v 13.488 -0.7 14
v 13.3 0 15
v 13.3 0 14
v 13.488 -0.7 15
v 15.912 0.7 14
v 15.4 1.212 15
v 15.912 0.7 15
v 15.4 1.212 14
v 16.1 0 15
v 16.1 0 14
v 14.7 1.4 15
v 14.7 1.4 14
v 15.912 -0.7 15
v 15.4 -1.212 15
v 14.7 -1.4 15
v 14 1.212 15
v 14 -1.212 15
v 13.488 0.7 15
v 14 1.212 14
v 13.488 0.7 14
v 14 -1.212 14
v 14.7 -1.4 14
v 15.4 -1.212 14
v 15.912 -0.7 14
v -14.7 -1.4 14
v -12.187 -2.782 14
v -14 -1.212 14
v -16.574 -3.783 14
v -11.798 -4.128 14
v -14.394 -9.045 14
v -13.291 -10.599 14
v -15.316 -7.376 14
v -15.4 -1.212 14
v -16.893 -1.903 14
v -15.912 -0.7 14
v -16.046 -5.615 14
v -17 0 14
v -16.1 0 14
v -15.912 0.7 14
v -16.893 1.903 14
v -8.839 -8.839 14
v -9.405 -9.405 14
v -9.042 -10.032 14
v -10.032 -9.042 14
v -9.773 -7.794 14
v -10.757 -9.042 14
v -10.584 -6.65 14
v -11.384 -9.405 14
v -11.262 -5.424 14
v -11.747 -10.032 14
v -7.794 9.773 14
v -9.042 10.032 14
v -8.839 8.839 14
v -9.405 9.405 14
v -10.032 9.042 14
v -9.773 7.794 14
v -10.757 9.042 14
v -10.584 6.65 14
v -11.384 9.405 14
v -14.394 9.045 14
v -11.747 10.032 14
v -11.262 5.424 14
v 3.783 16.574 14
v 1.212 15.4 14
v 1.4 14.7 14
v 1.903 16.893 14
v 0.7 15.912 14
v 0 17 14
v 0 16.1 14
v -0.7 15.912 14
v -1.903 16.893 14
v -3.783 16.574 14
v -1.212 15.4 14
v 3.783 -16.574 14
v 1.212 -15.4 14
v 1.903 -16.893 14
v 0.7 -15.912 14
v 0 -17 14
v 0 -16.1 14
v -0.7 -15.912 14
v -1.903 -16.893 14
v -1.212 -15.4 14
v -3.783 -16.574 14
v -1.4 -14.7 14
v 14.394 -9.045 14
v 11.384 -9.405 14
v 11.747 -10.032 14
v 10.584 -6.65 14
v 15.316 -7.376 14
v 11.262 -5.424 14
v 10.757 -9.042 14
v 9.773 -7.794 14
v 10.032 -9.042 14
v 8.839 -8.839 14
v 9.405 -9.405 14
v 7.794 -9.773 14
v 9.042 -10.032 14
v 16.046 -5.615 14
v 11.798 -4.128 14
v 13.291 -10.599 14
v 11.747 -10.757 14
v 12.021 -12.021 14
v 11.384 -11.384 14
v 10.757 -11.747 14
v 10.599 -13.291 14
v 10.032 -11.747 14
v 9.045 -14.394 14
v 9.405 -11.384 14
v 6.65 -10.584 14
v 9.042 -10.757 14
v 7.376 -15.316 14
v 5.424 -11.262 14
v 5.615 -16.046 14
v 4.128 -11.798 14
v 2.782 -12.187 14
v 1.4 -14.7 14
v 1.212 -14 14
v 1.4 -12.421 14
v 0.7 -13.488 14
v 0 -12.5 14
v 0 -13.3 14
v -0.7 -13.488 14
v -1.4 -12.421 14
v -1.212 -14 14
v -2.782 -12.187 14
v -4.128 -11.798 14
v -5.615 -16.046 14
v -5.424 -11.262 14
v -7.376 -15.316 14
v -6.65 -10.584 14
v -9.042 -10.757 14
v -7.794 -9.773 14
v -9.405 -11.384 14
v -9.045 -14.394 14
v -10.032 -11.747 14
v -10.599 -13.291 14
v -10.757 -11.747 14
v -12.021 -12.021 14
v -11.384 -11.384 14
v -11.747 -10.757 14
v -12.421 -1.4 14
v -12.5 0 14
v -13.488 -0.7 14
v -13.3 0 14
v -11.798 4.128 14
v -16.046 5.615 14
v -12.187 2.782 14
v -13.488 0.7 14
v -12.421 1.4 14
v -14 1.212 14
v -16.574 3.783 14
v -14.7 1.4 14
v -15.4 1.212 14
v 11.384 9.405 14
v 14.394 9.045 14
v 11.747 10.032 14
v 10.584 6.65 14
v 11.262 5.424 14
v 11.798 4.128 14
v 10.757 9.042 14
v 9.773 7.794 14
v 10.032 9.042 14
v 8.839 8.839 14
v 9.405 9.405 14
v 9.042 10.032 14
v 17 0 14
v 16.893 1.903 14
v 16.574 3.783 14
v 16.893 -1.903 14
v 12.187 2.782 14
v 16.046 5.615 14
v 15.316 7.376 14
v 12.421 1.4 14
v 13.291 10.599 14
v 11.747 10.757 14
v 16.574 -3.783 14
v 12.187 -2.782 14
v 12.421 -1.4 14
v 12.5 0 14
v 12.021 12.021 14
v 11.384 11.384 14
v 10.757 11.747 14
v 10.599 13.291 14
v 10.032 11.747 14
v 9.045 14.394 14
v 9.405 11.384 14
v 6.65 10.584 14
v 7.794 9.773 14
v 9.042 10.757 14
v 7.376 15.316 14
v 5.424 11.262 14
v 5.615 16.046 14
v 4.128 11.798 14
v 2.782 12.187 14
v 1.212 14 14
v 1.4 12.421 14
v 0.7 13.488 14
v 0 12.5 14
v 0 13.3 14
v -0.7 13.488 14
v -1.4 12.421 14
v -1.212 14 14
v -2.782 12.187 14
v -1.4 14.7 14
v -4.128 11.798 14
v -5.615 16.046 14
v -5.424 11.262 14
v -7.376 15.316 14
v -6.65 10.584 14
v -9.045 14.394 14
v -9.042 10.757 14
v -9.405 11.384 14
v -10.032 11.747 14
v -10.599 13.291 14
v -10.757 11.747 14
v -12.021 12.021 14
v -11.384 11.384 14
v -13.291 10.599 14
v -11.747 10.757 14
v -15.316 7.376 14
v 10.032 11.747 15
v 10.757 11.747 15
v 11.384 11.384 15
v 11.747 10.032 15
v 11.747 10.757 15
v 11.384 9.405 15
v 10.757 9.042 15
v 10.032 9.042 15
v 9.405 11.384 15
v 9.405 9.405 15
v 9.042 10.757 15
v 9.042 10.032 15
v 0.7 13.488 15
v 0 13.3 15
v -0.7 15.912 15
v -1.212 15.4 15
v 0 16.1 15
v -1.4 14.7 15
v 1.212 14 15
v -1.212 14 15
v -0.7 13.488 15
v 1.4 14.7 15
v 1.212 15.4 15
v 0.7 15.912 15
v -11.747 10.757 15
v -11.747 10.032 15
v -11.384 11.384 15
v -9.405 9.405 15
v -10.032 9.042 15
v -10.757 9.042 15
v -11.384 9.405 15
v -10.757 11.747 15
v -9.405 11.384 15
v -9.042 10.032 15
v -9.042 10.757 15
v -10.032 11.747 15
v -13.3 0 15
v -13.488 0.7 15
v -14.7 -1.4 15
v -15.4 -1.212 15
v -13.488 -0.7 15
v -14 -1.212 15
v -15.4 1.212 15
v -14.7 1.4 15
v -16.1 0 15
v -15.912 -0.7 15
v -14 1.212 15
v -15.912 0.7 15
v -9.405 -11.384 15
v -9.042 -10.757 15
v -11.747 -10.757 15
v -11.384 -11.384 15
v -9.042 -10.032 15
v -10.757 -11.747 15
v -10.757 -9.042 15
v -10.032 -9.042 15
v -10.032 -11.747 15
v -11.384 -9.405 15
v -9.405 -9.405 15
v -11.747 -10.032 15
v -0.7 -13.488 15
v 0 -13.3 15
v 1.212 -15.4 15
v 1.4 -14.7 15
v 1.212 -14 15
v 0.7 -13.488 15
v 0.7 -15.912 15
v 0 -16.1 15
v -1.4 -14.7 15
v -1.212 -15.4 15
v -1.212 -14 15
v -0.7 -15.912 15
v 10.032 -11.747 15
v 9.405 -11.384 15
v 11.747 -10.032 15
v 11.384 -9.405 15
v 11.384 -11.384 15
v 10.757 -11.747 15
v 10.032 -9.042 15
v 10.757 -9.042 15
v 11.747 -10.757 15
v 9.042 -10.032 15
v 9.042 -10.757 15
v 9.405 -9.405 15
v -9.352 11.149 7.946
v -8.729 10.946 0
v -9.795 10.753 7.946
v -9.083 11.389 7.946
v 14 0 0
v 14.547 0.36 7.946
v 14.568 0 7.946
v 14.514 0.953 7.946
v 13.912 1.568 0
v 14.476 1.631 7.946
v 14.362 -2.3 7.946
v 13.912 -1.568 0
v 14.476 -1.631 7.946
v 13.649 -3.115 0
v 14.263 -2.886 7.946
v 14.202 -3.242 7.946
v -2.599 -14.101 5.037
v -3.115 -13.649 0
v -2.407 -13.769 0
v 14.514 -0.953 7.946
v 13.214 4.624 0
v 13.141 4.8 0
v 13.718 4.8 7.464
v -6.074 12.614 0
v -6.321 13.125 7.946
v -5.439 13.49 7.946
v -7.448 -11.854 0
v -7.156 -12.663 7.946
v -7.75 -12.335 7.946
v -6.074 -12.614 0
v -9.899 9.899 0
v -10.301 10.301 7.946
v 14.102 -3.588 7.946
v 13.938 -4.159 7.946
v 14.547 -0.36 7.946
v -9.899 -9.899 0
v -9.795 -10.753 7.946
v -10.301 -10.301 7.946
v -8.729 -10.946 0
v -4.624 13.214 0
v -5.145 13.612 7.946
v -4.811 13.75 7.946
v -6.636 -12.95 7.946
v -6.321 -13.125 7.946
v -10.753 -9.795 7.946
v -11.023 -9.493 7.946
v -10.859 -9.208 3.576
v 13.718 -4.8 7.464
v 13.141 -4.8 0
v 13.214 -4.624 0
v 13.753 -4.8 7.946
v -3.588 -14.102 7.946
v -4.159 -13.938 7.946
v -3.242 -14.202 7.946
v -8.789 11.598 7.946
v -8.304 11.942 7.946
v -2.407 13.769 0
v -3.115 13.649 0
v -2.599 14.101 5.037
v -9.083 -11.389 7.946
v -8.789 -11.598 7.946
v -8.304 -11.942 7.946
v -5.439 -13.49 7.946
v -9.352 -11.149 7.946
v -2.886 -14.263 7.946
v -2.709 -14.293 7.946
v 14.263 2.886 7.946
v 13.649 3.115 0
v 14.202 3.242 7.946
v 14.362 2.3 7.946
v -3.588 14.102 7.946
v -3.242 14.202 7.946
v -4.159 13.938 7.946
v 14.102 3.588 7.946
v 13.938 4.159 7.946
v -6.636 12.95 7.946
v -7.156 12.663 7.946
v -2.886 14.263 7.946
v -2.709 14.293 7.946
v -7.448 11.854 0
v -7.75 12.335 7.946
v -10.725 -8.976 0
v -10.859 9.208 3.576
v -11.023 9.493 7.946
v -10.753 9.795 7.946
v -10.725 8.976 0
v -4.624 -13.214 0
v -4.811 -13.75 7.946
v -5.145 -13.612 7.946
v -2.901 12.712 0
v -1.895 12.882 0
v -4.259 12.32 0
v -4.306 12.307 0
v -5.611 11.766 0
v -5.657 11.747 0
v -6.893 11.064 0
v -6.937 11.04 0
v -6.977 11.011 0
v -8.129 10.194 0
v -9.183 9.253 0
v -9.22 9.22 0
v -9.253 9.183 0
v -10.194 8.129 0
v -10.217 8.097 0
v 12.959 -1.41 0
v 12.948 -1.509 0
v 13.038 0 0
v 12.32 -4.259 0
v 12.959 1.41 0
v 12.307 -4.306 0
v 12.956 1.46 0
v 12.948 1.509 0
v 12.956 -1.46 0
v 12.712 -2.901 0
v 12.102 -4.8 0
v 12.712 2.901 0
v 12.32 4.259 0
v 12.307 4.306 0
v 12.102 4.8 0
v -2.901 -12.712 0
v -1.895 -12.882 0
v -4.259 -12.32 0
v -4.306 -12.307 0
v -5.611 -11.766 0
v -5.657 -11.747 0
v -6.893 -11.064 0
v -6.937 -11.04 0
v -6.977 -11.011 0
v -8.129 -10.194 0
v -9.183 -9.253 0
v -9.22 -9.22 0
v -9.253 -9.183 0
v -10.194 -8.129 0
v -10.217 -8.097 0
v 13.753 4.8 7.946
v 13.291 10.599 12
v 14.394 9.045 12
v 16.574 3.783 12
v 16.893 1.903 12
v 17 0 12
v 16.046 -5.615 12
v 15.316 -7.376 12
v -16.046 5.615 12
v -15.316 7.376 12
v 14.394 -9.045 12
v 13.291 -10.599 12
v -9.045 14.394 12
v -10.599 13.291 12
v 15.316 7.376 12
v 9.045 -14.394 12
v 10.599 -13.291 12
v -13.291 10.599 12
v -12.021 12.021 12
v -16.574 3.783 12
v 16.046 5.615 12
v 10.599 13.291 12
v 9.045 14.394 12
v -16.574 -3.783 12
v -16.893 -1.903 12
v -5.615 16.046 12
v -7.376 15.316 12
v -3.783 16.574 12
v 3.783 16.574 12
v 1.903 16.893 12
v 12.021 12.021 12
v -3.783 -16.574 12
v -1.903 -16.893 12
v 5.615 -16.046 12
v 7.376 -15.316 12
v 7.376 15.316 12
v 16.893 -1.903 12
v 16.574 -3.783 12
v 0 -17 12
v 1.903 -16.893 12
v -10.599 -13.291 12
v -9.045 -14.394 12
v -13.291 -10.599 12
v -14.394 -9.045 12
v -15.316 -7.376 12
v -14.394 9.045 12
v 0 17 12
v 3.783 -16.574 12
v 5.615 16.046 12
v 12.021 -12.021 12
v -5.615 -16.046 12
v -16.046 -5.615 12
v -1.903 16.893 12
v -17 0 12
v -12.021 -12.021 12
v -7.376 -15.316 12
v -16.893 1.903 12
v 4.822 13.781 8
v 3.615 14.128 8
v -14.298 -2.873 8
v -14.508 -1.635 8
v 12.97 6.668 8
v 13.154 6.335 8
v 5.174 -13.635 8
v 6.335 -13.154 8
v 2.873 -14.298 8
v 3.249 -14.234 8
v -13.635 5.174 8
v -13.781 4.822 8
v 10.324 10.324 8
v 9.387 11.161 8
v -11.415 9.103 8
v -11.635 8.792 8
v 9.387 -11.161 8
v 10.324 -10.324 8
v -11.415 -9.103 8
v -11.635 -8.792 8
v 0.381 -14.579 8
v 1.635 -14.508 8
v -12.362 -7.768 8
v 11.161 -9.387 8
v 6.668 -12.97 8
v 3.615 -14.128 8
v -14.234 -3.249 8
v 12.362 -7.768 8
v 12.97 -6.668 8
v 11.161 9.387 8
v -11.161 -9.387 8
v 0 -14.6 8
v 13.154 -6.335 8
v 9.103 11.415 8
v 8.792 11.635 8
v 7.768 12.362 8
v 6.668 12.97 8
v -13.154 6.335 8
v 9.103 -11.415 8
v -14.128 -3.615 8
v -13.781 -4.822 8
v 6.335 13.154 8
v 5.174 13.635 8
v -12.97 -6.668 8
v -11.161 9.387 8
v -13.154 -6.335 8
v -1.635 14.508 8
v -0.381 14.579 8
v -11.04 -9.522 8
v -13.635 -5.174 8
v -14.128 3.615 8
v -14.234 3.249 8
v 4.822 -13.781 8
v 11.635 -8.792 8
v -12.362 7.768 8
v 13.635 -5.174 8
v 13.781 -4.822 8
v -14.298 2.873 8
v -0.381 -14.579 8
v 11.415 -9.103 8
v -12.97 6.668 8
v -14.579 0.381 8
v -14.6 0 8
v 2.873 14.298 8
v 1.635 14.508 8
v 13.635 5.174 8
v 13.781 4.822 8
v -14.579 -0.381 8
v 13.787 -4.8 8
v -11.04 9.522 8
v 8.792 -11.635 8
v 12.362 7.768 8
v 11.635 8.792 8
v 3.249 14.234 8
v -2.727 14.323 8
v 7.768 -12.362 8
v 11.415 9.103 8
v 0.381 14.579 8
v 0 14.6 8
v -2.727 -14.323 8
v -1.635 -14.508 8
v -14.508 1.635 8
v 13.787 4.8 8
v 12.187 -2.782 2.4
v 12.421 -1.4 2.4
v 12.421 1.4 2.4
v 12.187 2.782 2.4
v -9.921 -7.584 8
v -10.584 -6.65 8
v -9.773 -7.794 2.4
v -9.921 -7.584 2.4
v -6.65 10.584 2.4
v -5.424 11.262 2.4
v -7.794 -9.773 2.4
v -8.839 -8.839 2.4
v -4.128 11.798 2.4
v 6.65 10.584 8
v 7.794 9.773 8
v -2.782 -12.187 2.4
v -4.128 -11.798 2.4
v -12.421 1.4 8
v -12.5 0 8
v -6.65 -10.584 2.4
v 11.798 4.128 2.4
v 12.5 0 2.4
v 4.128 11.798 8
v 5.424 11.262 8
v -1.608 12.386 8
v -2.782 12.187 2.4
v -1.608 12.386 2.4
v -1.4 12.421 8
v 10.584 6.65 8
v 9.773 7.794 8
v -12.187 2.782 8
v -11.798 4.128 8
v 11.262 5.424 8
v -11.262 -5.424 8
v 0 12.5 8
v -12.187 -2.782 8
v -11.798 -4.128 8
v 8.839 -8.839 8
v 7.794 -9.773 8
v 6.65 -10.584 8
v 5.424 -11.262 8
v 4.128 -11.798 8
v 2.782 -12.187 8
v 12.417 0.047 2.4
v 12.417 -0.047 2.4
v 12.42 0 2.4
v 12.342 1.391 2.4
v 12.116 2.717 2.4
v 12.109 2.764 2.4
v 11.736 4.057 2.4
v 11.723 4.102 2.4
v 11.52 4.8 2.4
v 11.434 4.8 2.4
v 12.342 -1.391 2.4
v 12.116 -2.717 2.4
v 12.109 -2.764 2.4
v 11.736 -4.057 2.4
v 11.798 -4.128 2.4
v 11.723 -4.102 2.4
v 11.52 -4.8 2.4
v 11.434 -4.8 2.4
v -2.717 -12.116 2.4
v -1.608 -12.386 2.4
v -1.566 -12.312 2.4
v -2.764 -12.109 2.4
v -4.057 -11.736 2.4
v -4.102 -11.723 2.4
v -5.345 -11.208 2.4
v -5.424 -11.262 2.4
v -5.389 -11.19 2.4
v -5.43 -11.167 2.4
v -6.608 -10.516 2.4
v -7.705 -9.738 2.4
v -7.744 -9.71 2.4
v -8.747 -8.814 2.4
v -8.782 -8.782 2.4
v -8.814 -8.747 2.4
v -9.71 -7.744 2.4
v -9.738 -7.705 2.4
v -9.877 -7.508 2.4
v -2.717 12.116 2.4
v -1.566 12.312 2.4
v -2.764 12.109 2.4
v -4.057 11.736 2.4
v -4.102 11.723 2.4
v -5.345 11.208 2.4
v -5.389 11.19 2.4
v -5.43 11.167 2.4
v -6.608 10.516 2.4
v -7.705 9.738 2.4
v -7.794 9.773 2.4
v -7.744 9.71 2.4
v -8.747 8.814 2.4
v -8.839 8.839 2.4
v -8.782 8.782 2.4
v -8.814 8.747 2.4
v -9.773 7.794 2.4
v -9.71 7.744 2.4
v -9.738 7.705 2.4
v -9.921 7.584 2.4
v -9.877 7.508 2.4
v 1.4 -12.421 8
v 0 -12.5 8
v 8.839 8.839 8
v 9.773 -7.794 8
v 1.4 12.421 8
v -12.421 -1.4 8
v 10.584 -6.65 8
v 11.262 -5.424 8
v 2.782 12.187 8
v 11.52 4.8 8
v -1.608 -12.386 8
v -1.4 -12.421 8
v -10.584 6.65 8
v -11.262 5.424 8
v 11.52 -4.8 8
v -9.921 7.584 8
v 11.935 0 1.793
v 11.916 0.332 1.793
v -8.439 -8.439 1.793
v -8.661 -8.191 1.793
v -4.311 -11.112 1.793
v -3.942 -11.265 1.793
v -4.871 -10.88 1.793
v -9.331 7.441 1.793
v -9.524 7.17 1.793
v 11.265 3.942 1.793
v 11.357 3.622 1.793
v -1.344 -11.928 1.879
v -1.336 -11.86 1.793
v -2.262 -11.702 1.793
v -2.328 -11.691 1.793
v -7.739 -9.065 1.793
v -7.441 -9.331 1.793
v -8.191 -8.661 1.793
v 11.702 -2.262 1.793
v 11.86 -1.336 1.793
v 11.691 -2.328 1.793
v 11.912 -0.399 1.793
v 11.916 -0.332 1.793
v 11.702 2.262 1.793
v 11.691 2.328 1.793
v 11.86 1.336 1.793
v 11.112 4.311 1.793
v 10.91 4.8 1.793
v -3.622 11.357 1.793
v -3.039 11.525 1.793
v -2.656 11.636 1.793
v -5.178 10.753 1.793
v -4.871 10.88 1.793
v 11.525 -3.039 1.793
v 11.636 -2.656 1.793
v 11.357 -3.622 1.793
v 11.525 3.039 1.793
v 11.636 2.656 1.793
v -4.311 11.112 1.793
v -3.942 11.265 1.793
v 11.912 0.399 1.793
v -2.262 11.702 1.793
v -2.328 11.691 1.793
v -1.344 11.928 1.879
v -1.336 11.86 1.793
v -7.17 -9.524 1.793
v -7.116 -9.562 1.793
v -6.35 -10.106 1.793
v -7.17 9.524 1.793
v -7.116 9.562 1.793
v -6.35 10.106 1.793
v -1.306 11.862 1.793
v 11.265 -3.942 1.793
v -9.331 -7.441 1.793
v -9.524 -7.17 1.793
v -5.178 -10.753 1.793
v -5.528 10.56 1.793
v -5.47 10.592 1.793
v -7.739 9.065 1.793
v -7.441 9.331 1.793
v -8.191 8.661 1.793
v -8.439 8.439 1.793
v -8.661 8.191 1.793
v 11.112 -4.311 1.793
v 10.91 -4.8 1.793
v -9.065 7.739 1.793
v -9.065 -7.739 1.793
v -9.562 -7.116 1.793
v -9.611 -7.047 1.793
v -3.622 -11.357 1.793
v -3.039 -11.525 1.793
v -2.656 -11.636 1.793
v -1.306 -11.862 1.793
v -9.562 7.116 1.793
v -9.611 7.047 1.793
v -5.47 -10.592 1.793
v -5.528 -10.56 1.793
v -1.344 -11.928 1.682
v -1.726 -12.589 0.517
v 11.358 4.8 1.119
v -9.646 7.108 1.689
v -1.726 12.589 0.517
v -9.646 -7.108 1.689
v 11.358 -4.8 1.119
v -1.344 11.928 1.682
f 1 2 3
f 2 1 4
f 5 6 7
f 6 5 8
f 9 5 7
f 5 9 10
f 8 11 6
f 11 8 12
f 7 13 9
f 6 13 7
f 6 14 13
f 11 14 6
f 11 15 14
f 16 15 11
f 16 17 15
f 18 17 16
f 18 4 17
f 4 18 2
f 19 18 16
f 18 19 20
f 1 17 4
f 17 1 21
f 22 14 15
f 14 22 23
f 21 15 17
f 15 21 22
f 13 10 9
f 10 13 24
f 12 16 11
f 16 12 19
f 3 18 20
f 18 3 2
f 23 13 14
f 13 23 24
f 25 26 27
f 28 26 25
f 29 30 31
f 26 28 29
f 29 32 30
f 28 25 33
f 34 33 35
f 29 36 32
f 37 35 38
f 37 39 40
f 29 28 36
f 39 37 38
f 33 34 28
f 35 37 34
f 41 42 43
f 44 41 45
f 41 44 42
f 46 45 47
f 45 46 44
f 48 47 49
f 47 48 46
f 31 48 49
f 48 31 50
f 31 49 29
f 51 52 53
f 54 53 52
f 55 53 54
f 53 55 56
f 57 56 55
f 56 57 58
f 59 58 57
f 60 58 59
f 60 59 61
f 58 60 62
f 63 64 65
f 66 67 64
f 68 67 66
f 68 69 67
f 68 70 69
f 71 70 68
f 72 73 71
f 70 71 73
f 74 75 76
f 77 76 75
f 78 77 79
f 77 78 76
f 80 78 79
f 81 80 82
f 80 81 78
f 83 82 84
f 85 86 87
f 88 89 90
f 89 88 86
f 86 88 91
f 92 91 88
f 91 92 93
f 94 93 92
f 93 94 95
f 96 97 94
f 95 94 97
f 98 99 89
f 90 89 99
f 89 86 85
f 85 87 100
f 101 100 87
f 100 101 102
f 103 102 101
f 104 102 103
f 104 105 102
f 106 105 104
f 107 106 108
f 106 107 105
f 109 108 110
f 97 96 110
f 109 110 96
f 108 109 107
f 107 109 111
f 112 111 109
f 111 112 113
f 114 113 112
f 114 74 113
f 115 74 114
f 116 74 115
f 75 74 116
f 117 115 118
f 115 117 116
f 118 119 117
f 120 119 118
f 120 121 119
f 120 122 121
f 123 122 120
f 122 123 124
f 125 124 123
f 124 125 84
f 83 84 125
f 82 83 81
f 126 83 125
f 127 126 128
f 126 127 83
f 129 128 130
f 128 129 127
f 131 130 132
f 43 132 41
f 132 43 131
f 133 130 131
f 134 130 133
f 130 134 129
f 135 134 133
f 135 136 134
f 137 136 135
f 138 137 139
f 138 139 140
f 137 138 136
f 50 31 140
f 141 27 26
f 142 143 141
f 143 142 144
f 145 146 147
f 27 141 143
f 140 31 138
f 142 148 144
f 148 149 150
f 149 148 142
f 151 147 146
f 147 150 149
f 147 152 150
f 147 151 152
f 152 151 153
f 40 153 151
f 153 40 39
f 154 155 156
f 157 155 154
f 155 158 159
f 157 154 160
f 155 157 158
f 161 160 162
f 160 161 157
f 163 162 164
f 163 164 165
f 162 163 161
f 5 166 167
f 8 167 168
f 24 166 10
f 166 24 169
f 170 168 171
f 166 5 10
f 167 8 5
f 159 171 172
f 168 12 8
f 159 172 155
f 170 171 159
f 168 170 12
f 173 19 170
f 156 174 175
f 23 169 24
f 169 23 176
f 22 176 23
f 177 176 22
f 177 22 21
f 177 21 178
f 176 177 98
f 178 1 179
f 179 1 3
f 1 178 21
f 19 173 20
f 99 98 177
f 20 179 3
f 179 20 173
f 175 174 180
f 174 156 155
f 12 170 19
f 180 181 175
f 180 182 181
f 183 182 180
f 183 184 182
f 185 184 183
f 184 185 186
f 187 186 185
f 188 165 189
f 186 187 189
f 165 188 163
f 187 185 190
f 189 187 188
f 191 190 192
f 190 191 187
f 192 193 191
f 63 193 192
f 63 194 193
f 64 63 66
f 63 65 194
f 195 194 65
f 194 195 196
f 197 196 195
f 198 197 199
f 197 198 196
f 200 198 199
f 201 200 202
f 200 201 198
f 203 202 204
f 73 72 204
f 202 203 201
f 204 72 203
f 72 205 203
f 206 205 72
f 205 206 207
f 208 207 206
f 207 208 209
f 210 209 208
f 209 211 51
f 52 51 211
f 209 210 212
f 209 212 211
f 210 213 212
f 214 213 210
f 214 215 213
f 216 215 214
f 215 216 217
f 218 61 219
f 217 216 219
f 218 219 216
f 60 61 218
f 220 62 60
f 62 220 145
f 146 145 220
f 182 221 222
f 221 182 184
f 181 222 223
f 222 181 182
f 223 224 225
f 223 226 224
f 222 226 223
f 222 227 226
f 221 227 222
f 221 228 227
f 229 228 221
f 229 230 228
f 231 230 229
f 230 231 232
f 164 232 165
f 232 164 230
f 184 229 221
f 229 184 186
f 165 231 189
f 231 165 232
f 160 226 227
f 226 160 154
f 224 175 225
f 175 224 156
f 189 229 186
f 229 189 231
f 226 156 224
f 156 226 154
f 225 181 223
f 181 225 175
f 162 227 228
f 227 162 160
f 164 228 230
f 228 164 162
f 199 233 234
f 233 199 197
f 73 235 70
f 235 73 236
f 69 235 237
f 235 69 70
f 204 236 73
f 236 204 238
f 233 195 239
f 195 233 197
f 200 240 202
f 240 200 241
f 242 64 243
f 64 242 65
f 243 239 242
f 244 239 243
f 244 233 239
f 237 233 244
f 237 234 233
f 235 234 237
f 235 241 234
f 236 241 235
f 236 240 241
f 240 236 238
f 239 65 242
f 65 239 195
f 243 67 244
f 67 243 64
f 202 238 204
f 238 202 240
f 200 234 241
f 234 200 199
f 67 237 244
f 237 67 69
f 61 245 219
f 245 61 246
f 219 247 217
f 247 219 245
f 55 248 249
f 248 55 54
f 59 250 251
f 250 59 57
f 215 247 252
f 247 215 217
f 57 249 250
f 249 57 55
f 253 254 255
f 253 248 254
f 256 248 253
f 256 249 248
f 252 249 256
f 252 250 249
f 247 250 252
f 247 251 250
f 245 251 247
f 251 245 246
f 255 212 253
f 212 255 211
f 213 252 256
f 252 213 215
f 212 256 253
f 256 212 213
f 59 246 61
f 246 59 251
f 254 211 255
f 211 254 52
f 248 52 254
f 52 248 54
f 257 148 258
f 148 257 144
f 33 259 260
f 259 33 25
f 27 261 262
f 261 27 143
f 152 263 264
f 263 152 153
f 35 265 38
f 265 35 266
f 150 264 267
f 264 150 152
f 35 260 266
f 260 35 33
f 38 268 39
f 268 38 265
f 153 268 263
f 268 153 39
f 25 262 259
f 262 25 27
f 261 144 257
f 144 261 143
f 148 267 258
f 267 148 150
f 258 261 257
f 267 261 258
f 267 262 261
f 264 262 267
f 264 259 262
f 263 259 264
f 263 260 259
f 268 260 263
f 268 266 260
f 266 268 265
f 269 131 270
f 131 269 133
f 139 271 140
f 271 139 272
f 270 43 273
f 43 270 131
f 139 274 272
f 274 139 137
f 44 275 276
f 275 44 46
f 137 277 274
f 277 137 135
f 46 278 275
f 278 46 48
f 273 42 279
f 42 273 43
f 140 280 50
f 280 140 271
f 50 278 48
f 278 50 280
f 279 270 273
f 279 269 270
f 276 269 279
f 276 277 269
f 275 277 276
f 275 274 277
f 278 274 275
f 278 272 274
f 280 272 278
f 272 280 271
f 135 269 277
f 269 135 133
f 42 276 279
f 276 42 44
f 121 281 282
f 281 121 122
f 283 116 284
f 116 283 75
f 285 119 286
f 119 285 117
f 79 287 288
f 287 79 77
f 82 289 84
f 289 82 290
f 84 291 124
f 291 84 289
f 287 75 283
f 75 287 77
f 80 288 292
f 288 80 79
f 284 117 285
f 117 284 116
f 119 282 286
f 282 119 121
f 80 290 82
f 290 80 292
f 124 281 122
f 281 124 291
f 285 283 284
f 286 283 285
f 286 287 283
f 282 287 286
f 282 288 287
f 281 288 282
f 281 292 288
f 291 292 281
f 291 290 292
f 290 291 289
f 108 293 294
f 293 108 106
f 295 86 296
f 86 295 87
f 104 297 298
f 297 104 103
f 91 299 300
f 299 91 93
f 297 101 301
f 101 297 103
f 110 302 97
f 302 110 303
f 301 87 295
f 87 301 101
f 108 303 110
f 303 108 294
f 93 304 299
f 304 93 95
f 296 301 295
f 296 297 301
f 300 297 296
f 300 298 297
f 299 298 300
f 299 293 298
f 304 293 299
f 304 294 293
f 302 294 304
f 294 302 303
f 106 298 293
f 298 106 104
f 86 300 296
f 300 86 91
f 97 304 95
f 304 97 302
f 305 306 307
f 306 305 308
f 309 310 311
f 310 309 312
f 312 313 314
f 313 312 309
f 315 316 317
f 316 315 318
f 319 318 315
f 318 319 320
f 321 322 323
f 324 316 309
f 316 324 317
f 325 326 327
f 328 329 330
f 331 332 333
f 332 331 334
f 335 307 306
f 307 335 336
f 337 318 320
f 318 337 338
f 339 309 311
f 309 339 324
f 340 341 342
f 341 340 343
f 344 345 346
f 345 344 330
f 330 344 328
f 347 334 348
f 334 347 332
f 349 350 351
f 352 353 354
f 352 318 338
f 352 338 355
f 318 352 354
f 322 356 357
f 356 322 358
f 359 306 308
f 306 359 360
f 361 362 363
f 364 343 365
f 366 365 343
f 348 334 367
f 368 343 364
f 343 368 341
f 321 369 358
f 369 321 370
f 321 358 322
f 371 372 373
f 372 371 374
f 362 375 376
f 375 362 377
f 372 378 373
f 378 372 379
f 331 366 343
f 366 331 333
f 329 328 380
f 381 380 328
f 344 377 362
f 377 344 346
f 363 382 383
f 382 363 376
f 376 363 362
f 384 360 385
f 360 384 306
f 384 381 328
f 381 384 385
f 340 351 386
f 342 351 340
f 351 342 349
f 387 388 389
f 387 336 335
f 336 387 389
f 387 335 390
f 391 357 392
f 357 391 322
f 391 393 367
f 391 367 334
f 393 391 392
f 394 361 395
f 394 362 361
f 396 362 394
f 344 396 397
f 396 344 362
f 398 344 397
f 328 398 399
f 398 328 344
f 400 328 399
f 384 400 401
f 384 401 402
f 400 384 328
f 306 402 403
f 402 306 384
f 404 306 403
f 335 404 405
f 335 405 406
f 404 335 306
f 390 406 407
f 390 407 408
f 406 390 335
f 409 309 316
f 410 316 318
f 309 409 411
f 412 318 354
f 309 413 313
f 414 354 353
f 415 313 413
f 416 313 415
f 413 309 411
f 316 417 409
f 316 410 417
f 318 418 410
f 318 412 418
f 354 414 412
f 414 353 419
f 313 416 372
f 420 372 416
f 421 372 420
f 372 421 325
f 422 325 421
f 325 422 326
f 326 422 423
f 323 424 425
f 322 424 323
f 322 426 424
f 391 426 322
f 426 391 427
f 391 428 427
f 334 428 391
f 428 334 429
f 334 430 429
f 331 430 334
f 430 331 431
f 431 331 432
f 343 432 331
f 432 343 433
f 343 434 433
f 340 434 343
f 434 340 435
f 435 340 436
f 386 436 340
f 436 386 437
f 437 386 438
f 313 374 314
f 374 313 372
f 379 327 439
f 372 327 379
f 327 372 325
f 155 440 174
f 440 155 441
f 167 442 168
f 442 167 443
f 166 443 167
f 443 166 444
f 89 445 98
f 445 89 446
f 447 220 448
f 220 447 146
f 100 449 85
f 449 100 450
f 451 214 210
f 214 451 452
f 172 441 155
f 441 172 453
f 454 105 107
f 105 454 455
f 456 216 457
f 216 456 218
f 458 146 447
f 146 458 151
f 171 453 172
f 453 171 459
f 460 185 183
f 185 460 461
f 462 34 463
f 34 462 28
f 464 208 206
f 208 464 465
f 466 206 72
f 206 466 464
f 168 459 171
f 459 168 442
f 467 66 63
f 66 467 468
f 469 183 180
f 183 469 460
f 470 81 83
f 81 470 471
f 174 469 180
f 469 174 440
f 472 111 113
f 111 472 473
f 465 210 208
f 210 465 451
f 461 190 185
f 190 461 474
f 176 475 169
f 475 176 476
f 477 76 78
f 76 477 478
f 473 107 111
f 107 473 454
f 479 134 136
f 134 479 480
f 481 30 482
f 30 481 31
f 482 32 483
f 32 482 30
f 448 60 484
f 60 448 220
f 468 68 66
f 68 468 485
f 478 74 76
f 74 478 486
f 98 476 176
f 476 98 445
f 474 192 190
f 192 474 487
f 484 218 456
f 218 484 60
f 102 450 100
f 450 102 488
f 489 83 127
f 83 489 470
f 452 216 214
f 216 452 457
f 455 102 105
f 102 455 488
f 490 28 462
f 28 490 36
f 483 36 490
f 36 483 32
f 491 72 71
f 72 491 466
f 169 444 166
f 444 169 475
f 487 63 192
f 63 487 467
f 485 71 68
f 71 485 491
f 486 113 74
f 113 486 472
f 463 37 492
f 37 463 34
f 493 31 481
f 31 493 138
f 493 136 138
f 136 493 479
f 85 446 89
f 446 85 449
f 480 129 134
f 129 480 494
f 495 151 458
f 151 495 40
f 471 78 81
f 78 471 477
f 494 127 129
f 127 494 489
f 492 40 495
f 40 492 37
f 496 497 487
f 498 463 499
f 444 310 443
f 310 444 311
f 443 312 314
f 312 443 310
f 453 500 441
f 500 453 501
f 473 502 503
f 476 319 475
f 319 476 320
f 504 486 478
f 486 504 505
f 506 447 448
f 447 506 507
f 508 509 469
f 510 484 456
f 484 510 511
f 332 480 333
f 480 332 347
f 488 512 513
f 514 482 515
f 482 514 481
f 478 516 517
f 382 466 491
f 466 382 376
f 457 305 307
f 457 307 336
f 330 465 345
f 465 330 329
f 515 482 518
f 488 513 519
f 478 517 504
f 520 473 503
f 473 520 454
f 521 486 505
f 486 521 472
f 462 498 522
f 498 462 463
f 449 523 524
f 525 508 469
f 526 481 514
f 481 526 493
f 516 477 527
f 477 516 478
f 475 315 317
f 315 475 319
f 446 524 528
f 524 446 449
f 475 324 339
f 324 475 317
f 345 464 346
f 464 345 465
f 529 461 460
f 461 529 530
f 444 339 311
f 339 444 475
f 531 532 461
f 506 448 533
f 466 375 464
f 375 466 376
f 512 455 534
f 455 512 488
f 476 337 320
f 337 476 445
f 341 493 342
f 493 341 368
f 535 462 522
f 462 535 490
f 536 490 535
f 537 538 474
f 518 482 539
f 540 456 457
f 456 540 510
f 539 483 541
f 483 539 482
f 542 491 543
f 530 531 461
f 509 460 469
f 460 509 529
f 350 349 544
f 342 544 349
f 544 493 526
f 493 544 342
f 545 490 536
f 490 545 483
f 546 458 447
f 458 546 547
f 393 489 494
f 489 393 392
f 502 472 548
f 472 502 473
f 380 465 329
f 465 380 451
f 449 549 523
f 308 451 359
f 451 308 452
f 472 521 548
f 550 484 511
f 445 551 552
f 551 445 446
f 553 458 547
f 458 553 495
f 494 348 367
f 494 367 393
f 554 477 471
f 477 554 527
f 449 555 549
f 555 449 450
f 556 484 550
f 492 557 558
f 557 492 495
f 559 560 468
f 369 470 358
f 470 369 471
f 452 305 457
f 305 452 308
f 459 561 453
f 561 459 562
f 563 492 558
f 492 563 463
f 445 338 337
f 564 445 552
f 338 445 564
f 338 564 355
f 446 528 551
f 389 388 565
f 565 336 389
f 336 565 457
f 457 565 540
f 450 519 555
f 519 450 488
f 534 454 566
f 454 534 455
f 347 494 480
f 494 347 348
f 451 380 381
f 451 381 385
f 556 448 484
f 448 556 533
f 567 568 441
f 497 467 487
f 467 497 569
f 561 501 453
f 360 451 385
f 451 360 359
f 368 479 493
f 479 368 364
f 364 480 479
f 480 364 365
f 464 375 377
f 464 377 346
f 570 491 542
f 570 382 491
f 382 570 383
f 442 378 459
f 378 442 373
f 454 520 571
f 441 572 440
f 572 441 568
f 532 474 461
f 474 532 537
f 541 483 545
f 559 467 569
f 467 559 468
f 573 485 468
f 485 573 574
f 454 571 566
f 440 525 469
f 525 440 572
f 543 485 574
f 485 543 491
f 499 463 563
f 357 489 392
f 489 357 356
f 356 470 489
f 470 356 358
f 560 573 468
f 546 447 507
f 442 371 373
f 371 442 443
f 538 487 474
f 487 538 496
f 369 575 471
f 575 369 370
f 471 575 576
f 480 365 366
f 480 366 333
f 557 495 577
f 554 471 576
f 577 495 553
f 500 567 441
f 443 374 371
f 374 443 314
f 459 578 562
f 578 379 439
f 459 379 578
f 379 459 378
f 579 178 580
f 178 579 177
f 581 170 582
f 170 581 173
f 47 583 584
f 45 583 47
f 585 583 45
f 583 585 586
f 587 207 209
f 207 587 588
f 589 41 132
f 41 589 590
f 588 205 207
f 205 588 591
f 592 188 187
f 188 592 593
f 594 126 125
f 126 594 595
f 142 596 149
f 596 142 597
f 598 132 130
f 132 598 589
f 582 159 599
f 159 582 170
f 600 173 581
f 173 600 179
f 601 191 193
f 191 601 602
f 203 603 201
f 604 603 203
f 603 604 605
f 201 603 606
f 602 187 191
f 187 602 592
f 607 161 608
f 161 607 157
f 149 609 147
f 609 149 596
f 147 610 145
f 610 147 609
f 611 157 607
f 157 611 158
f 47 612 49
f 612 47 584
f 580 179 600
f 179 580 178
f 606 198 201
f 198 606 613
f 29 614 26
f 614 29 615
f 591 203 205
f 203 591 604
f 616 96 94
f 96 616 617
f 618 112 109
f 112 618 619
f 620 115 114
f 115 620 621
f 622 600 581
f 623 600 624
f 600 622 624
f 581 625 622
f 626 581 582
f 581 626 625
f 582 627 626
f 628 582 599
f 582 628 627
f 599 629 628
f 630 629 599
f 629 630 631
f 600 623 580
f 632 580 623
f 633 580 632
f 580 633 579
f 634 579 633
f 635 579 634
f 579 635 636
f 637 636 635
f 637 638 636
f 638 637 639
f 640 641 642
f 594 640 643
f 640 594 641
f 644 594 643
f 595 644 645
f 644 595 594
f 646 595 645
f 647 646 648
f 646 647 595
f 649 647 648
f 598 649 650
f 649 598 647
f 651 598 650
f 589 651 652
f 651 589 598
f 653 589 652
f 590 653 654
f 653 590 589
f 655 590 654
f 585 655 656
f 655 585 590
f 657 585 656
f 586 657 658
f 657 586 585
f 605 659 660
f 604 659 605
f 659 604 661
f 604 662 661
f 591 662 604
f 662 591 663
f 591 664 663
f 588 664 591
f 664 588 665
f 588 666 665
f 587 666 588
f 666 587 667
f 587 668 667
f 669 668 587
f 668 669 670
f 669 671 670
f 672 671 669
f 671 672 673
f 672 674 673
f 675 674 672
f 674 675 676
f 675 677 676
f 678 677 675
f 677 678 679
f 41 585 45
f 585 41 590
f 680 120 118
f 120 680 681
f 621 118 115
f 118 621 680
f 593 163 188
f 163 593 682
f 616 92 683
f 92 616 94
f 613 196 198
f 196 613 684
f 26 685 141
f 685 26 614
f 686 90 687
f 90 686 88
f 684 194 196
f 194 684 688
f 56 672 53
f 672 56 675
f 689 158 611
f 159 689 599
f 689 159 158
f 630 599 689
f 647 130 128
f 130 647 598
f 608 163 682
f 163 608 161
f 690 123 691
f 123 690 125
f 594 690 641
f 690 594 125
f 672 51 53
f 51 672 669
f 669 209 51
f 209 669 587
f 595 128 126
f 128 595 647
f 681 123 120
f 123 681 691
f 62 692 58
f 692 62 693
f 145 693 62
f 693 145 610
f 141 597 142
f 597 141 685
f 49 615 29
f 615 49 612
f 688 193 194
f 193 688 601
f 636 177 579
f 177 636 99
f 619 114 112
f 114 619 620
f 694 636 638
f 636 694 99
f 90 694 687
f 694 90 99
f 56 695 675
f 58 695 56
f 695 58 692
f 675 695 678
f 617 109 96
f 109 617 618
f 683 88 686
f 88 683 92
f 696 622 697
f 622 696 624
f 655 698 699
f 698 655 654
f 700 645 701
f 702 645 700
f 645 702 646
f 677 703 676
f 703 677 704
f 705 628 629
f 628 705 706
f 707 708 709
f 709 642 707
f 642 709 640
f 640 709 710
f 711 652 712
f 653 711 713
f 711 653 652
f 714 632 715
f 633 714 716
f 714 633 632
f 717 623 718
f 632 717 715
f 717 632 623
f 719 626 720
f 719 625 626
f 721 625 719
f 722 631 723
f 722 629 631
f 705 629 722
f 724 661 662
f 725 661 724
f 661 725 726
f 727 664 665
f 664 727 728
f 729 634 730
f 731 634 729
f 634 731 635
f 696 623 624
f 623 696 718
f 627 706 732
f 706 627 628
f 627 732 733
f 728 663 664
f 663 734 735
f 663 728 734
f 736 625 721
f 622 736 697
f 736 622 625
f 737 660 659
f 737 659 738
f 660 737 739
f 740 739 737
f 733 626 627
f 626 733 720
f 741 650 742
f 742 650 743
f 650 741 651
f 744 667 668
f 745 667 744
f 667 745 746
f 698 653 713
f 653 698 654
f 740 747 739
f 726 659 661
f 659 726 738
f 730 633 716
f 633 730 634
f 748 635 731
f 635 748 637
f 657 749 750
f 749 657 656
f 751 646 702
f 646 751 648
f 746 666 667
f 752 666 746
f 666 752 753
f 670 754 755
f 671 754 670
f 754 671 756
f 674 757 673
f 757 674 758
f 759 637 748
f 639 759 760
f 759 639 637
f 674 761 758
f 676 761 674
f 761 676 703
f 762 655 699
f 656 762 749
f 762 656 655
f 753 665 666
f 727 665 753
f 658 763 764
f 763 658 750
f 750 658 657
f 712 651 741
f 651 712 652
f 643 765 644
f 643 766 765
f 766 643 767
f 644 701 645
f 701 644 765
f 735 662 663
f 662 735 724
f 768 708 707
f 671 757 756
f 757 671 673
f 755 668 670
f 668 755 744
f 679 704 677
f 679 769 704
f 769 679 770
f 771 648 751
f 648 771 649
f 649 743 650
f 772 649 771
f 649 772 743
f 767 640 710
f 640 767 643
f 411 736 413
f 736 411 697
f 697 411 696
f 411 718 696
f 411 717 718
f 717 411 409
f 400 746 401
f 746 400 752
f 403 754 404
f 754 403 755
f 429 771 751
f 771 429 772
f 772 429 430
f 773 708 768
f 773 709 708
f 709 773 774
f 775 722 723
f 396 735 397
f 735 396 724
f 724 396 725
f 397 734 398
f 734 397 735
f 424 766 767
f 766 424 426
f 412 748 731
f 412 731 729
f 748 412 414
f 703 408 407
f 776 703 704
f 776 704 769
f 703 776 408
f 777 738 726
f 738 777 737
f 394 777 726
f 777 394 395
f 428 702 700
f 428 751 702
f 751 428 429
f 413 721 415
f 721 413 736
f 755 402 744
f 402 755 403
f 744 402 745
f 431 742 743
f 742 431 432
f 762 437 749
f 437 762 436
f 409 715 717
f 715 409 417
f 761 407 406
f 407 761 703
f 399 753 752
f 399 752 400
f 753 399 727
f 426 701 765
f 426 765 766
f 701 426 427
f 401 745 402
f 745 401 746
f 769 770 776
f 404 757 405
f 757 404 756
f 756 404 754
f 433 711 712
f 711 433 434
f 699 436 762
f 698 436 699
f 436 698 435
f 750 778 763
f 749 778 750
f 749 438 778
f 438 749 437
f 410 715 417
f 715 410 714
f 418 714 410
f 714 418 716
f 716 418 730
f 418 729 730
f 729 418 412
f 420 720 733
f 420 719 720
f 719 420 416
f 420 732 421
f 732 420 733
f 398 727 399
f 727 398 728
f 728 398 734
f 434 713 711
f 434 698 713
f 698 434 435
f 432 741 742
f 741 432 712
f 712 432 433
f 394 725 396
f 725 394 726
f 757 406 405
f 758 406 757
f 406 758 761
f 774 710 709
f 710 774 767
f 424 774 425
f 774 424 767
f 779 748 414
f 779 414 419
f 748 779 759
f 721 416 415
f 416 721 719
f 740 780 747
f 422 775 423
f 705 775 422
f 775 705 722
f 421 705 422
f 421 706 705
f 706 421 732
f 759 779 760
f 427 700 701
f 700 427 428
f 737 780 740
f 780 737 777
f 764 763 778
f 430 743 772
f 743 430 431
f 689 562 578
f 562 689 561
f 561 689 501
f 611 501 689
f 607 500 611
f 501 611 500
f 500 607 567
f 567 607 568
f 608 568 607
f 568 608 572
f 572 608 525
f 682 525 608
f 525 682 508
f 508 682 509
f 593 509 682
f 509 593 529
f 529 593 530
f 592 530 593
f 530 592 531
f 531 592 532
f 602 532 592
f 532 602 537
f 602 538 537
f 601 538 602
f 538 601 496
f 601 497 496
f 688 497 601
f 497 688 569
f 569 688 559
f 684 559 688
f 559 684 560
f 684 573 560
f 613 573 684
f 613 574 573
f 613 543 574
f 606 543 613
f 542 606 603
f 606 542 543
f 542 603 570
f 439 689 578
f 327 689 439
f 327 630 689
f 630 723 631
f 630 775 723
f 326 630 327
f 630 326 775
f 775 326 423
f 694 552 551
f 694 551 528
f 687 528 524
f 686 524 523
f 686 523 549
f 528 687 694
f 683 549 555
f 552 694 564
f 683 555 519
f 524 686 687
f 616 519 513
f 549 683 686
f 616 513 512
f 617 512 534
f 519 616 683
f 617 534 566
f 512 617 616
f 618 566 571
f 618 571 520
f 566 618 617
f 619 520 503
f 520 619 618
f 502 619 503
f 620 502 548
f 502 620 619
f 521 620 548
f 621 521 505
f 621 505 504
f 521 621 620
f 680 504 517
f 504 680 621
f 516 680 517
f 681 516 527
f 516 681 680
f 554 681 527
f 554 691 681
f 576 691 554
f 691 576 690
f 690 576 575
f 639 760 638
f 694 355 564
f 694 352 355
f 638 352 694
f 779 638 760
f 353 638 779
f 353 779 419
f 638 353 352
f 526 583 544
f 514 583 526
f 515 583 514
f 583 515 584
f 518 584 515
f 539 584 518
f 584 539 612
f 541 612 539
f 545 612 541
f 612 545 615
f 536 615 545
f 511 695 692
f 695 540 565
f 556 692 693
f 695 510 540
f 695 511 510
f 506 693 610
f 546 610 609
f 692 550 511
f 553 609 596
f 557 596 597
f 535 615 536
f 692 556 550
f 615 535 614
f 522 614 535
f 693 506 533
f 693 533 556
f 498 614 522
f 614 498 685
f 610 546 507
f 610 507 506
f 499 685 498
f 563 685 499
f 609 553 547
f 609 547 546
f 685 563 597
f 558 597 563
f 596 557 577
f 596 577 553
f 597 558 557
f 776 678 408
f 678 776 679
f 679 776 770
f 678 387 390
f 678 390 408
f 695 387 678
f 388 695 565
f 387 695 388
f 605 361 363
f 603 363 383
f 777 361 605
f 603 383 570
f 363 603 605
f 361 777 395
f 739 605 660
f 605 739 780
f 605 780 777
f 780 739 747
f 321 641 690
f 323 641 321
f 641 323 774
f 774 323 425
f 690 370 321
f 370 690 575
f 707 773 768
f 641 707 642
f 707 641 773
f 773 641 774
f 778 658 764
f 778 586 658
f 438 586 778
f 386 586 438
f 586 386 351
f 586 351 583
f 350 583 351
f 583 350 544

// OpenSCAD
//
// kr_defl_insert.scad
// The insert for a deflector for a Kuhn-Rikon pressure cooker
//
// Even the original factory parts had a limited lifetime, but the
// replacements of 2018 and later break after a very short time.
// This print isn't going to be amazingly durable either,  but at
// least it's not $18+shipping+tax. And it may actually be better
// than the garbage-level official replacements.
//
// Because a super-heated steam (> 100 C) exits the pressure cooker,
// it is paramount to use a heat-resistant material. ABS is the
// very minimum that you might want to use.
//

$fn = 56;

main_height = 14.0;
inside_dia = 25.0;   // Diameter of the main hole in the center
flange_dia = 34.0;   // Diameter of the base that faces the deflector
petal_width = 9.6;

module outer_mold () {
    // The main cylinder, which forms the petals.
    cylinder(main_height, (inside_dia + 3)/2, (inside_dia + 5)/2);

    // Base of the flange
    translate([0, 0, 12.0])
       cylinder(2.0, flange_dia/2, flange_dia/2);
    // Slope of the flange
    translate([0, 0, 7.0])
       cylinder(5.0, (inside_dia + 3)/2, flange_dia/2);

    // Attachment studs
    // Of the 8 holes in the deflector, 4 are smaller and 4 are larger.
    // However they all appear to be at the same distance from the center
    // and the pegs of the factory part seems to be the same.
    for (phi = [0 : 45 : 360]) {
        rotate(phi, [0,0,1])
            translate([inside_dia/2 + 2.2, 0, main_height])
                cylinder(1.0, 1.4, 1.4, $fn=12);
    }
}

module petal_cut () {

    // We use the same 3 petals as the factory part. Some of the steam
    // outlets get between petals and/or are overlapped by them.
    // Nothing can be done about it, except leaving large gaps.

    for (phi = [0 : 120 : 360]) {
        rotate(phi, [0,0,1]) {
            // We have 2 cut cubes that make sides of petal parallel.

            cut_cube_y = 10;
            cut_cube_z = 8;

            translate([0, petal_width/2, -0.1])
                cube([14, cut_cube_y, cut_cube_z + 0.1]);
            translate([0, (cut_cube_y + petal_width/2)*-1, -0.1])
                cube([14, cut_cube_y, cut_cube_z + 0.1]);
        }
    }
}

// The center hole is an exact cylinder, but we also use it in order
// to form the ridges that get into a groove on the body of the valve.
module center_hole () {

    translate([0, 0, 2.5-0.1])
        cylinder(main_height+0.2-2.5, inside_dia/2, inside_dia/2);

    translate([0, 0, 0])
        cylinder(2.5, (inside_dia-4.0)/2, inside_dia/2);

    translate([0, 0, -0.1])
        cylinder(2.5+0.1, (inside_dia+1.2)/2, (inside_dia-2.0)/2);
}

module the_insert () {
    difference () {
        outer_mold();

        center_hole();

        // Gaps between petals
        petal_cut();
    }
}

the_insert();
